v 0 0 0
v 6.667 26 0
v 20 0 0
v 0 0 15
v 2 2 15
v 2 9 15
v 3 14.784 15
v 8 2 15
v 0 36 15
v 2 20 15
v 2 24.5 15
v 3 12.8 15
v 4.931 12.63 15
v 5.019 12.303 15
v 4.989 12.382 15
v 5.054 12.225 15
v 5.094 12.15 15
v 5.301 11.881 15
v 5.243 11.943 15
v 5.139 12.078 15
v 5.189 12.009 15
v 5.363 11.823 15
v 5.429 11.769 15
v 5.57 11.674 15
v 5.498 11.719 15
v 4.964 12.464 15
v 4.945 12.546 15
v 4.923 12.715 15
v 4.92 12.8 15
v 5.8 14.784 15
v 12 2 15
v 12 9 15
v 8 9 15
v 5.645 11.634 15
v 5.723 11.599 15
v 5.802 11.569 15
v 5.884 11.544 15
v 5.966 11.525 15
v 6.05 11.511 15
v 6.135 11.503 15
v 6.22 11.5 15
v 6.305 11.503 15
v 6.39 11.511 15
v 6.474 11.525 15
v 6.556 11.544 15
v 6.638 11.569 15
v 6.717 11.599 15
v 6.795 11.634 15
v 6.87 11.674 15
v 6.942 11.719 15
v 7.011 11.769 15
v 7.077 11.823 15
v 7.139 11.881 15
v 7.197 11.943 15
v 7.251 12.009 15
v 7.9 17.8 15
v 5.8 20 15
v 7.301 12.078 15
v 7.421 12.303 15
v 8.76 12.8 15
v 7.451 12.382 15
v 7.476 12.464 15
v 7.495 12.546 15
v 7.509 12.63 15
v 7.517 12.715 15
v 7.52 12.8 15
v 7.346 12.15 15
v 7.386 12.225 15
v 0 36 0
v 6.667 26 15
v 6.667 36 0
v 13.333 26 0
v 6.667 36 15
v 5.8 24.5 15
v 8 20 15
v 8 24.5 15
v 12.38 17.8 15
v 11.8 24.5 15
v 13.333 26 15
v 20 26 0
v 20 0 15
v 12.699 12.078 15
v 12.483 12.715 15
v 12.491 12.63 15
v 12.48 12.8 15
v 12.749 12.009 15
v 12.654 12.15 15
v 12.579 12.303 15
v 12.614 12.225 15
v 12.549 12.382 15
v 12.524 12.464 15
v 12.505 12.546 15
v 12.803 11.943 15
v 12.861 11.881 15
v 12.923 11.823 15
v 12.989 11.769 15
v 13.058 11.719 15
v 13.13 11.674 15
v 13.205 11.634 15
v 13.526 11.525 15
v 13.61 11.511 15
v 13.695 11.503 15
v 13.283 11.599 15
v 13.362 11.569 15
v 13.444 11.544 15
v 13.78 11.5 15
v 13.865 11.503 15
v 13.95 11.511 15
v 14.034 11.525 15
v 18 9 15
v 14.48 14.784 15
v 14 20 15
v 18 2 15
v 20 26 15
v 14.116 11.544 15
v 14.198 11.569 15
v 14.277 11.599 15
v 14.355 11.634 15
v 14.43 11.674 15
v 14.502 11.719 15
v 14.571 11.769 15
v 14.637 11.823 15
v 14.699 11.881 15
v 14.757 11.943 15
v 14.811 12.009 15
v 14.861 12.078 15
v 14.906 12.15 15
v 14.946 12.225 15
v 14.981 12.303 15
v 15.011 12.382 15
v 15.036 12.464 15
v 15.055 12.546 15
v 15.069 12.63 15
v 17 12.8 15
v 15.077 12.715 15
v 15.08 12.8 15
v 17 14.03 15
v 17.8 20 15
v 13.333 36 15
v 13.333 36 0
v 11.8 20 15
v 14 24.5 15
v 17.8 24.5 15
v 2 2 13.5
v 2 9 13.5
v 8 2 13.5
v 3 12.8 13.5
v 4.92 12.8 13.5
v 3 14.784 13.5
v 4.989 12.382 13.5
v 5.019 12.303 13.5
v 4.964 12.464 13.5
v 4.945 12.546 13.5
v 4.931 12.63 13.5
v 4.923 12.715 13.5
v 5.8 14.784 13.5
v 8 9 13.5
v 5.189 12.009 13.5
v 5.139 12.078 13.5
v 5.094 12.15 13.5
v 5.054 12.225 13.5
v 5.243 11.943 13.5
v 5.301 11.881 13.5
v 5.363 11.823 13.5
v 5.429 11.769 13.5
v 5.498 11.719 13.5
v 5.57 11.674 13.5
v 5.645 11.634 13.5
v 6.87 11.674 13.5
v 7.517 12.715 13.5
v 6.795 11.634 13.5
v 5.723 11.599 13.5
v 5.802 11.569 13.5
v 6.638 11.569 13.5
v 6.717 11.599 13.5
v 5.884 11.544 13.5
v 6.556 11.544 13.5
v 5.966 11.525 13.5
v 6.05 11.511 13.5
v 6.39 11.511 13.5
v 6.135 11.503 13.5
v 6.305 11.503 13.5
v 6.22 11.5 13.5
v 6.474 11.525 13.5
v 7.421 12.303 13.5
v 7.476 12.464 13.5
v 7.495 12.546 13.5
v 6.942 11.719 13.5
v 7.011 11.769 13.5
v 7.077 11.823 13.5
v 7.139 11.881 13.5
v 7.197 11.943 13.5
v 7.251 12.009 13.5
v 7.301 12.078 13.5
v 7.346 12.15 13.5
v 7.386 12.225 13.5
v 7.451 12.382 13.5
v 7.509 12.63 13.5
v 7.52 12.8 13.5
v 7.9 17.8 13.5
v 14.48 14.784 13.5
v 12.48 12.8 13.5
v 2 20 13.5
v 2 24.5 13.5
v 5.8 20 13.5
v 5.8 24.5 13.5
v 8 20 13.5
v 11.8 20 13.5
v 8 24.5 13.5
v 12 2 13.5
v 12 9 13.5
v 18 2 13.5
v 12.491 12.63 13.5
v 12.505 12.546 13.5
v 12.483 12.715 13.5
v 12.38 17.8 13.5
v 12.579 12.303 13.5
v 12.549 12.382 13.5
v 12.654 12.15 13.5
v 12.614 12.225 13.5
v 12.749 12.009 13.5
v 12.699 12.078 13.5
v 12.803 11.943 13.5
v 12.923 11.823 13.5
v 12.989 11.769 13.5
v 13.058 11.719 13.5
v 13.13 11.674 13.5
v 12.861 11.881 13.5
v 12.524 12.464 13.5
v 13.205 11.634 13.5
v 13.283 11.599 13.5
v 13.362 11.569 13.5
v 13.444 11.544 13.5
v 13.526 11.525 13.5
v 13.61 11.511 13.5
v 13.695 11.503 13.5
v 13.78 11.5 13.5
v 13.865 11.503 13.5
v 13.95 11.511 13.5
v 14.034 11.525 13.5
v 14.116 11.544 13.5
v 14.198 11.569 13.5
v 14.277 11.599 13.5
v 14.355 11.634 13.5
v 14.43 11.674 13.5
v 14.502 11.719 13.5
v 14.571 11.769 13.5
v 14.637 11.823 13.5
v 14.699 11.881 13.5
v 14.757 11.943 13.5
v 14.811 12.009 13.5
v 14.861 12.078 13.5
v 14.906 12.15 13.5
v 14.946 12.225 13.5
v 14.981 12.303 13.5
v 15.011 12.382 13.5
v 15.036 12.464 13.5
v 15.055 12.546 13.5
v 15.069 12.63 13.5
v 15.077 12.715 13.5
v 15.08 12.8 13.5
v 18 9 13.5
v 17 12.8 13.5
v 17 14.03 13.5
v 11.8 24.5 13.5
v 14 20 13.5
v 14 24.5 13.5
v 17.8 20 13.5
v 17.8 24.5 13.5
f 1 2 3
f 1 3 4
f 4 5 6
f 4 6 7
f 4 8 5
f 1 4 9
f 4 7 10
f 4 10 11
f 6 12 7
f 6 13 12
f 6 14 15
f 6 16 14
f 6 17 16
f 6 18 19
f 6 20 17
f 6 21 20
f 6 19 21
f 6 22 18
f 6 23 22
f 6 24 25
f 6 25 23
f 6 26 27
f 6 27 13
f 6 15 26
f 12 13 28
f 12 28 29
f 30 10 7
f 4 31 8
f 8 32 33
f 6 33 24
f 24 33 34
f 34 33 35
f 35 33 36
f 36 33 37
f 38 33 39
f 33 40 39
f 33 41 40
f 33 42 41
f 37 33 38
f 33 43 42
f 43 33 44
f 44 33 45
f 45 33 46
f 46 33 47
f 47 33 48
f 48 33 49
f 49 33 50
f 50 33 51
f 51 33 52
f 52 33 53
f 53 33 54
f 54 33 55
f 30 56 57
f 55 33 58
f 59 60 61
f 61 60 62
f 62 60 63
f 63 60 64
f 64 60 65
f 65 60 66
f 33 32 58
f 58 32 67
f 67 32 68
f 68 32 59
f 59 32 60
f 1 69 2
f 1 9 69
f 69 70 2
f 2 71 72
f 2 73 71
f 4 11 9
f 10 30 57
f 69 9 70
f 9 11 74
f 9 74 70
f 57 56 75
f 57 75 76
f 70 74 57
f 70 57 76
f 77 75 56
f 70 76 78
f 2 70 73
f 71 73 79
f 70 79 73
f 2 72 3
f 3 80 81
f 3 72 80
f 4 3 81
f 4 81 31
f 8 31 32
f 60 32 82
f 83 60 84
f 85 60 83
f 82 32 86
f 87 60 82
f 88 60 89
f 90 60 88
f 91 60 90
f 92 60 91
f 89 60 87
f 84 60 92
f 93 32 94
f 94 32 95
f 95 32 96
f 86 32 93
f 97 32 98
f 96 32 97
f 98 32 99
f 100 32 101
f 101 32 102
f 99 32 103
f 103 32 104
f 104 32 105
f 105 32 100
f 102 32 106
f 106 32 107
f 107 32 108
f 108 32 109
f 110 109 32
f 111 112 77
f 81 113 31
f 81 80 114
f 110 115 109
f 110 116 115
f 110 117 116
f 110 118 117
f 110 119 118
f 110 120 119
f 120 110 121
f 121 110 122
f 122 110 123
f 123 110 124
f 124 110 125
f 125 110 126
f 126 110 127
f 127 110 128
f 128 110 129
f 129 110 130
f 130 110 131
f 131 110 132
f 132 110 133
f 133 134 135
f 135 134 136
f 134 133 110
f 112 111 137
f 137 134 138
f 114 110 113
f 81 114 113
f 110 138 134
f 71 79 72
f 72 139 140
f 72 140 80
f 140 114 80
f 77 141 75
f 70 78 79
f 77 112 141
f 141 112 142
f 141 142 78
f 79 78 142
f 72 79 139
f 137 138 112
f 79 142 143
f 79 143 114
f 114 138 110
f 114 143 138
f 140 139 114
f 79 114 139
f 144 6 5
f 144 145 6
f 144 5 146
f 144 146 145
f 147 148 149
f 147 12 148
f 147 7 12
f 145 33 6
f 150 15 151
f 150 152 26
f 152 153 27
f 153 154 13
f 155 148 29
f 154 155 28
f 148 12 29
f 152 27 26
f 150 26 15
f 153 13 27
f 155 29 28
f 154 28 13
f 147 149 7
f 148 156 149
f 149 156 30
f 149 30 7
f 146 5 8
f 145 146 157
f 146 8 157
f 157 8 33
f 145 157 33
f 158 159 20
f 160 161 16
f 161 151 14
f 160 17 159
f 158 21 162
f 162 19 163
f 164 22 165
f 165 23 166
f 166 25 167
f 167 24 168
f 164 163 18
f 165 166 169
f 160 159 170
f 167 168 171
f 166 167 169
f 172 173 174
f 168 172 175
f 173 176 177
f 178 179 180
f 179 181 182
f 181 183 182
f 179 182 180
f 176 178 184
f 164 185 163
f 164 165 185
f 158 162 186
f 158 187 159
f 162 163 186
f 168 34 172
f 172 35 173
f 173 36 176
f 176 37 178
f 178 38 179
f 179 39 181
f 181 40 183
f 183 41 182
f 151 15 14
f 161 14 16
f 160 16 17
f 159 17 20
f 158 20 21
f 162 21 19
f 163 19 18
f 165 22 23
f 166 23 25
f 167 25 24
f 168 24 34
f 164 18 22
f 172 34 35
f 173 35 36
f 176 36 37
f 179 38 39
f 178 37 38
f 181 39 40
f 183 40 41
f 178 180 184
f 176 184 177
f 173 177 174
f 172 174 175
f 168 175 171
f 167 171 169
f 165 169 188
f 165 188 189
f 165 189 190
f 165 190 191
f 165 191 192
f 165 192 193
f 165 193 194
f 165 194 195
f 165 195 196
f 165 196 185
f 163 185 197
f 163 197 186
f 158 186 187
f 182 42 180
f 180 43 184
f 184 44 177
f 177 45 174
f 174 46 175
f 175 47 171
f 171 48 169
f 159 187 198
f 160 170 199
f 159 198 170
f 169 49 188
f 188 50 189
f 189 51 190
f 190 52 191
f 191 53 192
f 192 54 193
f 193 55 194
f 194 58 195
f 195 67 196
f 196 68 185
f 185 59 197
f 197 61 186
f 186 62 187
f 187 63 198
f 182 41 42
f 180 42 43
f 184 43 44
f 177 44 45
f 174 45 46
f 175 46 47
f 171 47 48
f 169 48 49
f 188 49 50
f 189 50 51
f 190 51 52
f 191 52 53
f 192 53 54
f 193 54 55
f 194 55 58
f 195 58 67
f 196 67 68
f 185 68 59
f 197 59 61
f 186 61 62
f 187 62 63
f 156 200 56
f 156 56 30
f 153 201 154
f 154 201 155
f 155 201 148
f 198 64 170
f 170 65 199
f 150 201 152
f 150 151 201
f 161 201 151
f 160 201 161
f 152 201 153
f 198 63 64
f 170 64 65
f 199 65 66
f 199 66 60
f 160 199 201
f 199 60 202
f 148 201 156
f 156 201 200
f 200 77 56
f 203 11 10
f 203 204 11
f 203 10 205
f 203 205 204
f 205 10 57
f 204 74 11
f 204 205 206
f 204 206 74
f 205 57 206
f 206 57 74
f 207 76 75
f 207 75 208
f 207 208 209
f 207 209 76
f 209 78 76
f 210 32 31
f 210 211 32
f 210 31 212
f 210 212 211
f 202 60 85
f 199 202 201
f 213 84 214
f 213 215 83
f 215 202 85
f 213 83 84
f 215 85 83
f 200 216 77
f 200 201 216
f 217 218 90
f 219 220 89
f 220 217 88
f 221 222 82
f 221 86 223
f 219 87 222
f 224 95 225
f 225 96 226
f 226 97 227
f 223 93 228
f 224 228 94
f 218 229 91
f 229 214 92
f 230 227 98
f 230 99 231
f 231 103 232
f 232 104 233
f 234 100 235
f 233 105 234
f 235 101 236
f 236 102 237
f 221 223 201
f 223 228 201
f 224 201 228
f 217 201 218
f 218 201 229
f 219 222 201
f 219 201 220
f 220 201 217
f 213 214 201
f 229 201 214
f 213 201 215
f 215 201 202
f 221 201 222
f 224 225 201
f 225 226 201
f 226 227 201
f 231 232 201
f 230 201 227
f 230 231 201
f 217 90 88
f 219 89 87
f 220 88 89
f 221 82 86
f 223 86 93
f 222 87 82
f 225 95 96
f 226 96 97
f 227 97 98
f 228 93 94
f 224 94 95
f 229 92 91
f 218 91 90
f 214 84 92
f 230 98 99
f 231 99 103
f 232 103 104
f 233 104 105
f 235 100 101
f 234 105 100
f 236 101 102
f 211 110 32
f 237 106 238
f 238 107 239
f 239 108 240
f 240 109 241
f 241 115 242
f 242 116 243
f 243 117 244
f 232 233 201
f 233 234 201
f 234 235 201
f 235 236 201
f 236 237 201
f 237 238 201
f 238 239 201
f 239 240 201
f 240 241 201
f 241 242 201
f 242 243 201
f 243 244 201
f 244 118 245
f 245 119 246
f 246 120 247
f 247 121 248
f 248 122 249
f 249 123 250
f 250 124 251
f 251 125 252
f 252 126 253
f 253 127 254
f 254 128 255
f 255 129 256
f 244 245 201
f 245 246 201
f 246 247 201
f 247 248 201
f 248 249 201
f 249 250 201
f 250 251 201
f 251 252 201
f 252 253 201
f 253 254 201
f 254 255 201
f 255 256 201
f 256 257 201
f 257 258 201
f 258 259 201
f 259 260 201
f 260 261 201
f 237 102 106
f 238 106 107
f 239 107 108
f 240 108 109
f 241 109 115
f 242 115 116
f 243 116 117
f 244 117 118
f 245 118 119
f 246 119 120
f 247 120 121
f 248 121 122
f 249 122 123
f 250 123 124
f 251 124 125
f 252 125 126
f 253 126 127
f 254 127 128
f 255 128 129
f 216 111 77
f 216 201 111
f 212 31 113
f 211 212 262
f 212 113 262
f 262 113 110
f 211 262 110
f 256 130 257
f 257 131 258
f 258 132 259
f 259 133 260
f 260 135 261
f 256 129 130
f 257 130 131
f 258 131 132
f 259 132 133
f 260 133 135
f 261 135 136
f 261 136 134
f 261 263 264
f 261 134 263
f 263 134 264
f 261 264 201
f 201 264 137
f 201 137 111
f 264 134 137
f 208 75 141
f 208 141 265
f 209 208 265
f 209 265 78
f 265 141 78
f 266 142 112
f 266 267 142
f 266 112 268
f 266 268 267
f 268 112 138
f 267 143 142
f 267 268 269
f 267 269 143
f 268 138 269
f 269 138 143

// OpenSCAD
// Building facade miniature for board games.
// Millimetres. X=width, Y=height, Z=depth.
// Print flat at Z=0; straight base at Y=0; front at Z=15.
// All recesses are blind and 1.5 mm deep. This is a solid piece.
$fn=96;
depth=15;
recess=1.5;
module rect(x,y,w,h) { translate([x,y]) square([w,h]); }
module disc(x,y,r) { translate([x,y]) circle(r=r); }
module line(a,b,w=1.4) {
    hull() { translate(a) circle(d=w); translate(b) circle(d=w); }
}
module frame(x,y,w,h,t=1.4) {
    difference() { rect(x,y,w,h); rect(x+t,y+t,w-2*t,h-2*t); }
}
module gear(x,y,r=6,inner=2.4) {
    translate([x,y]) difference() {
        polygon([for(i=[0:(r<4?15:23)]) let(n=(r<4?16:24),a=(i+1)*360/n,rr=(i%4<2?r:r-min(1.5,r*0.21))) [rr*cos(a),rr*sin(a)]]);
        circle(r=inner);
    }
}
module car(x,y,w=14,h=5) {
    translate([x,y]) union() {
        polygon([[0,0.8],[0,h*0.48],[w*0.2,h*0.48],
                 [w*0.35,h],[w*0.67,h],[w*0.82,h*0.48],
                 [w,h*0.35],[w,0.8]]);
        disc(w*0.23,0.8,1.3); disc(w*0.77,0.8,1.3);
    }
}
module recycling(x,y,r=6) {
    translate([x,y]) for(a=[0,120,240]) rotate(a) {
        line([-3.8,3.2],[1.2,3.2],1.6);
        polygon([[1.2,1.7],[4.2,3.2],[1.2,4.7]]);
    }
}
module cutface() { translate([0,0,depth-recess]) linear_extrude(height=recess+0.5) facade(); }
// All details are recessed into the same solid facade.
difference() {
    linear_extrude(height=depth) outline();
    cutface();
}


module outline() {
    polygon([[0,0],[20,0],[20,26],[13.333,36],[13.333,26],[6.667,36],[6.667,26],[0,36]]);
}
module facade() {
    rect(2,2,6,7); rect(12,2,6,7);
    car(3,12,14,5.8);
    for(x=[2,8,14]) rect(x,20,3.8,4.5);
}
